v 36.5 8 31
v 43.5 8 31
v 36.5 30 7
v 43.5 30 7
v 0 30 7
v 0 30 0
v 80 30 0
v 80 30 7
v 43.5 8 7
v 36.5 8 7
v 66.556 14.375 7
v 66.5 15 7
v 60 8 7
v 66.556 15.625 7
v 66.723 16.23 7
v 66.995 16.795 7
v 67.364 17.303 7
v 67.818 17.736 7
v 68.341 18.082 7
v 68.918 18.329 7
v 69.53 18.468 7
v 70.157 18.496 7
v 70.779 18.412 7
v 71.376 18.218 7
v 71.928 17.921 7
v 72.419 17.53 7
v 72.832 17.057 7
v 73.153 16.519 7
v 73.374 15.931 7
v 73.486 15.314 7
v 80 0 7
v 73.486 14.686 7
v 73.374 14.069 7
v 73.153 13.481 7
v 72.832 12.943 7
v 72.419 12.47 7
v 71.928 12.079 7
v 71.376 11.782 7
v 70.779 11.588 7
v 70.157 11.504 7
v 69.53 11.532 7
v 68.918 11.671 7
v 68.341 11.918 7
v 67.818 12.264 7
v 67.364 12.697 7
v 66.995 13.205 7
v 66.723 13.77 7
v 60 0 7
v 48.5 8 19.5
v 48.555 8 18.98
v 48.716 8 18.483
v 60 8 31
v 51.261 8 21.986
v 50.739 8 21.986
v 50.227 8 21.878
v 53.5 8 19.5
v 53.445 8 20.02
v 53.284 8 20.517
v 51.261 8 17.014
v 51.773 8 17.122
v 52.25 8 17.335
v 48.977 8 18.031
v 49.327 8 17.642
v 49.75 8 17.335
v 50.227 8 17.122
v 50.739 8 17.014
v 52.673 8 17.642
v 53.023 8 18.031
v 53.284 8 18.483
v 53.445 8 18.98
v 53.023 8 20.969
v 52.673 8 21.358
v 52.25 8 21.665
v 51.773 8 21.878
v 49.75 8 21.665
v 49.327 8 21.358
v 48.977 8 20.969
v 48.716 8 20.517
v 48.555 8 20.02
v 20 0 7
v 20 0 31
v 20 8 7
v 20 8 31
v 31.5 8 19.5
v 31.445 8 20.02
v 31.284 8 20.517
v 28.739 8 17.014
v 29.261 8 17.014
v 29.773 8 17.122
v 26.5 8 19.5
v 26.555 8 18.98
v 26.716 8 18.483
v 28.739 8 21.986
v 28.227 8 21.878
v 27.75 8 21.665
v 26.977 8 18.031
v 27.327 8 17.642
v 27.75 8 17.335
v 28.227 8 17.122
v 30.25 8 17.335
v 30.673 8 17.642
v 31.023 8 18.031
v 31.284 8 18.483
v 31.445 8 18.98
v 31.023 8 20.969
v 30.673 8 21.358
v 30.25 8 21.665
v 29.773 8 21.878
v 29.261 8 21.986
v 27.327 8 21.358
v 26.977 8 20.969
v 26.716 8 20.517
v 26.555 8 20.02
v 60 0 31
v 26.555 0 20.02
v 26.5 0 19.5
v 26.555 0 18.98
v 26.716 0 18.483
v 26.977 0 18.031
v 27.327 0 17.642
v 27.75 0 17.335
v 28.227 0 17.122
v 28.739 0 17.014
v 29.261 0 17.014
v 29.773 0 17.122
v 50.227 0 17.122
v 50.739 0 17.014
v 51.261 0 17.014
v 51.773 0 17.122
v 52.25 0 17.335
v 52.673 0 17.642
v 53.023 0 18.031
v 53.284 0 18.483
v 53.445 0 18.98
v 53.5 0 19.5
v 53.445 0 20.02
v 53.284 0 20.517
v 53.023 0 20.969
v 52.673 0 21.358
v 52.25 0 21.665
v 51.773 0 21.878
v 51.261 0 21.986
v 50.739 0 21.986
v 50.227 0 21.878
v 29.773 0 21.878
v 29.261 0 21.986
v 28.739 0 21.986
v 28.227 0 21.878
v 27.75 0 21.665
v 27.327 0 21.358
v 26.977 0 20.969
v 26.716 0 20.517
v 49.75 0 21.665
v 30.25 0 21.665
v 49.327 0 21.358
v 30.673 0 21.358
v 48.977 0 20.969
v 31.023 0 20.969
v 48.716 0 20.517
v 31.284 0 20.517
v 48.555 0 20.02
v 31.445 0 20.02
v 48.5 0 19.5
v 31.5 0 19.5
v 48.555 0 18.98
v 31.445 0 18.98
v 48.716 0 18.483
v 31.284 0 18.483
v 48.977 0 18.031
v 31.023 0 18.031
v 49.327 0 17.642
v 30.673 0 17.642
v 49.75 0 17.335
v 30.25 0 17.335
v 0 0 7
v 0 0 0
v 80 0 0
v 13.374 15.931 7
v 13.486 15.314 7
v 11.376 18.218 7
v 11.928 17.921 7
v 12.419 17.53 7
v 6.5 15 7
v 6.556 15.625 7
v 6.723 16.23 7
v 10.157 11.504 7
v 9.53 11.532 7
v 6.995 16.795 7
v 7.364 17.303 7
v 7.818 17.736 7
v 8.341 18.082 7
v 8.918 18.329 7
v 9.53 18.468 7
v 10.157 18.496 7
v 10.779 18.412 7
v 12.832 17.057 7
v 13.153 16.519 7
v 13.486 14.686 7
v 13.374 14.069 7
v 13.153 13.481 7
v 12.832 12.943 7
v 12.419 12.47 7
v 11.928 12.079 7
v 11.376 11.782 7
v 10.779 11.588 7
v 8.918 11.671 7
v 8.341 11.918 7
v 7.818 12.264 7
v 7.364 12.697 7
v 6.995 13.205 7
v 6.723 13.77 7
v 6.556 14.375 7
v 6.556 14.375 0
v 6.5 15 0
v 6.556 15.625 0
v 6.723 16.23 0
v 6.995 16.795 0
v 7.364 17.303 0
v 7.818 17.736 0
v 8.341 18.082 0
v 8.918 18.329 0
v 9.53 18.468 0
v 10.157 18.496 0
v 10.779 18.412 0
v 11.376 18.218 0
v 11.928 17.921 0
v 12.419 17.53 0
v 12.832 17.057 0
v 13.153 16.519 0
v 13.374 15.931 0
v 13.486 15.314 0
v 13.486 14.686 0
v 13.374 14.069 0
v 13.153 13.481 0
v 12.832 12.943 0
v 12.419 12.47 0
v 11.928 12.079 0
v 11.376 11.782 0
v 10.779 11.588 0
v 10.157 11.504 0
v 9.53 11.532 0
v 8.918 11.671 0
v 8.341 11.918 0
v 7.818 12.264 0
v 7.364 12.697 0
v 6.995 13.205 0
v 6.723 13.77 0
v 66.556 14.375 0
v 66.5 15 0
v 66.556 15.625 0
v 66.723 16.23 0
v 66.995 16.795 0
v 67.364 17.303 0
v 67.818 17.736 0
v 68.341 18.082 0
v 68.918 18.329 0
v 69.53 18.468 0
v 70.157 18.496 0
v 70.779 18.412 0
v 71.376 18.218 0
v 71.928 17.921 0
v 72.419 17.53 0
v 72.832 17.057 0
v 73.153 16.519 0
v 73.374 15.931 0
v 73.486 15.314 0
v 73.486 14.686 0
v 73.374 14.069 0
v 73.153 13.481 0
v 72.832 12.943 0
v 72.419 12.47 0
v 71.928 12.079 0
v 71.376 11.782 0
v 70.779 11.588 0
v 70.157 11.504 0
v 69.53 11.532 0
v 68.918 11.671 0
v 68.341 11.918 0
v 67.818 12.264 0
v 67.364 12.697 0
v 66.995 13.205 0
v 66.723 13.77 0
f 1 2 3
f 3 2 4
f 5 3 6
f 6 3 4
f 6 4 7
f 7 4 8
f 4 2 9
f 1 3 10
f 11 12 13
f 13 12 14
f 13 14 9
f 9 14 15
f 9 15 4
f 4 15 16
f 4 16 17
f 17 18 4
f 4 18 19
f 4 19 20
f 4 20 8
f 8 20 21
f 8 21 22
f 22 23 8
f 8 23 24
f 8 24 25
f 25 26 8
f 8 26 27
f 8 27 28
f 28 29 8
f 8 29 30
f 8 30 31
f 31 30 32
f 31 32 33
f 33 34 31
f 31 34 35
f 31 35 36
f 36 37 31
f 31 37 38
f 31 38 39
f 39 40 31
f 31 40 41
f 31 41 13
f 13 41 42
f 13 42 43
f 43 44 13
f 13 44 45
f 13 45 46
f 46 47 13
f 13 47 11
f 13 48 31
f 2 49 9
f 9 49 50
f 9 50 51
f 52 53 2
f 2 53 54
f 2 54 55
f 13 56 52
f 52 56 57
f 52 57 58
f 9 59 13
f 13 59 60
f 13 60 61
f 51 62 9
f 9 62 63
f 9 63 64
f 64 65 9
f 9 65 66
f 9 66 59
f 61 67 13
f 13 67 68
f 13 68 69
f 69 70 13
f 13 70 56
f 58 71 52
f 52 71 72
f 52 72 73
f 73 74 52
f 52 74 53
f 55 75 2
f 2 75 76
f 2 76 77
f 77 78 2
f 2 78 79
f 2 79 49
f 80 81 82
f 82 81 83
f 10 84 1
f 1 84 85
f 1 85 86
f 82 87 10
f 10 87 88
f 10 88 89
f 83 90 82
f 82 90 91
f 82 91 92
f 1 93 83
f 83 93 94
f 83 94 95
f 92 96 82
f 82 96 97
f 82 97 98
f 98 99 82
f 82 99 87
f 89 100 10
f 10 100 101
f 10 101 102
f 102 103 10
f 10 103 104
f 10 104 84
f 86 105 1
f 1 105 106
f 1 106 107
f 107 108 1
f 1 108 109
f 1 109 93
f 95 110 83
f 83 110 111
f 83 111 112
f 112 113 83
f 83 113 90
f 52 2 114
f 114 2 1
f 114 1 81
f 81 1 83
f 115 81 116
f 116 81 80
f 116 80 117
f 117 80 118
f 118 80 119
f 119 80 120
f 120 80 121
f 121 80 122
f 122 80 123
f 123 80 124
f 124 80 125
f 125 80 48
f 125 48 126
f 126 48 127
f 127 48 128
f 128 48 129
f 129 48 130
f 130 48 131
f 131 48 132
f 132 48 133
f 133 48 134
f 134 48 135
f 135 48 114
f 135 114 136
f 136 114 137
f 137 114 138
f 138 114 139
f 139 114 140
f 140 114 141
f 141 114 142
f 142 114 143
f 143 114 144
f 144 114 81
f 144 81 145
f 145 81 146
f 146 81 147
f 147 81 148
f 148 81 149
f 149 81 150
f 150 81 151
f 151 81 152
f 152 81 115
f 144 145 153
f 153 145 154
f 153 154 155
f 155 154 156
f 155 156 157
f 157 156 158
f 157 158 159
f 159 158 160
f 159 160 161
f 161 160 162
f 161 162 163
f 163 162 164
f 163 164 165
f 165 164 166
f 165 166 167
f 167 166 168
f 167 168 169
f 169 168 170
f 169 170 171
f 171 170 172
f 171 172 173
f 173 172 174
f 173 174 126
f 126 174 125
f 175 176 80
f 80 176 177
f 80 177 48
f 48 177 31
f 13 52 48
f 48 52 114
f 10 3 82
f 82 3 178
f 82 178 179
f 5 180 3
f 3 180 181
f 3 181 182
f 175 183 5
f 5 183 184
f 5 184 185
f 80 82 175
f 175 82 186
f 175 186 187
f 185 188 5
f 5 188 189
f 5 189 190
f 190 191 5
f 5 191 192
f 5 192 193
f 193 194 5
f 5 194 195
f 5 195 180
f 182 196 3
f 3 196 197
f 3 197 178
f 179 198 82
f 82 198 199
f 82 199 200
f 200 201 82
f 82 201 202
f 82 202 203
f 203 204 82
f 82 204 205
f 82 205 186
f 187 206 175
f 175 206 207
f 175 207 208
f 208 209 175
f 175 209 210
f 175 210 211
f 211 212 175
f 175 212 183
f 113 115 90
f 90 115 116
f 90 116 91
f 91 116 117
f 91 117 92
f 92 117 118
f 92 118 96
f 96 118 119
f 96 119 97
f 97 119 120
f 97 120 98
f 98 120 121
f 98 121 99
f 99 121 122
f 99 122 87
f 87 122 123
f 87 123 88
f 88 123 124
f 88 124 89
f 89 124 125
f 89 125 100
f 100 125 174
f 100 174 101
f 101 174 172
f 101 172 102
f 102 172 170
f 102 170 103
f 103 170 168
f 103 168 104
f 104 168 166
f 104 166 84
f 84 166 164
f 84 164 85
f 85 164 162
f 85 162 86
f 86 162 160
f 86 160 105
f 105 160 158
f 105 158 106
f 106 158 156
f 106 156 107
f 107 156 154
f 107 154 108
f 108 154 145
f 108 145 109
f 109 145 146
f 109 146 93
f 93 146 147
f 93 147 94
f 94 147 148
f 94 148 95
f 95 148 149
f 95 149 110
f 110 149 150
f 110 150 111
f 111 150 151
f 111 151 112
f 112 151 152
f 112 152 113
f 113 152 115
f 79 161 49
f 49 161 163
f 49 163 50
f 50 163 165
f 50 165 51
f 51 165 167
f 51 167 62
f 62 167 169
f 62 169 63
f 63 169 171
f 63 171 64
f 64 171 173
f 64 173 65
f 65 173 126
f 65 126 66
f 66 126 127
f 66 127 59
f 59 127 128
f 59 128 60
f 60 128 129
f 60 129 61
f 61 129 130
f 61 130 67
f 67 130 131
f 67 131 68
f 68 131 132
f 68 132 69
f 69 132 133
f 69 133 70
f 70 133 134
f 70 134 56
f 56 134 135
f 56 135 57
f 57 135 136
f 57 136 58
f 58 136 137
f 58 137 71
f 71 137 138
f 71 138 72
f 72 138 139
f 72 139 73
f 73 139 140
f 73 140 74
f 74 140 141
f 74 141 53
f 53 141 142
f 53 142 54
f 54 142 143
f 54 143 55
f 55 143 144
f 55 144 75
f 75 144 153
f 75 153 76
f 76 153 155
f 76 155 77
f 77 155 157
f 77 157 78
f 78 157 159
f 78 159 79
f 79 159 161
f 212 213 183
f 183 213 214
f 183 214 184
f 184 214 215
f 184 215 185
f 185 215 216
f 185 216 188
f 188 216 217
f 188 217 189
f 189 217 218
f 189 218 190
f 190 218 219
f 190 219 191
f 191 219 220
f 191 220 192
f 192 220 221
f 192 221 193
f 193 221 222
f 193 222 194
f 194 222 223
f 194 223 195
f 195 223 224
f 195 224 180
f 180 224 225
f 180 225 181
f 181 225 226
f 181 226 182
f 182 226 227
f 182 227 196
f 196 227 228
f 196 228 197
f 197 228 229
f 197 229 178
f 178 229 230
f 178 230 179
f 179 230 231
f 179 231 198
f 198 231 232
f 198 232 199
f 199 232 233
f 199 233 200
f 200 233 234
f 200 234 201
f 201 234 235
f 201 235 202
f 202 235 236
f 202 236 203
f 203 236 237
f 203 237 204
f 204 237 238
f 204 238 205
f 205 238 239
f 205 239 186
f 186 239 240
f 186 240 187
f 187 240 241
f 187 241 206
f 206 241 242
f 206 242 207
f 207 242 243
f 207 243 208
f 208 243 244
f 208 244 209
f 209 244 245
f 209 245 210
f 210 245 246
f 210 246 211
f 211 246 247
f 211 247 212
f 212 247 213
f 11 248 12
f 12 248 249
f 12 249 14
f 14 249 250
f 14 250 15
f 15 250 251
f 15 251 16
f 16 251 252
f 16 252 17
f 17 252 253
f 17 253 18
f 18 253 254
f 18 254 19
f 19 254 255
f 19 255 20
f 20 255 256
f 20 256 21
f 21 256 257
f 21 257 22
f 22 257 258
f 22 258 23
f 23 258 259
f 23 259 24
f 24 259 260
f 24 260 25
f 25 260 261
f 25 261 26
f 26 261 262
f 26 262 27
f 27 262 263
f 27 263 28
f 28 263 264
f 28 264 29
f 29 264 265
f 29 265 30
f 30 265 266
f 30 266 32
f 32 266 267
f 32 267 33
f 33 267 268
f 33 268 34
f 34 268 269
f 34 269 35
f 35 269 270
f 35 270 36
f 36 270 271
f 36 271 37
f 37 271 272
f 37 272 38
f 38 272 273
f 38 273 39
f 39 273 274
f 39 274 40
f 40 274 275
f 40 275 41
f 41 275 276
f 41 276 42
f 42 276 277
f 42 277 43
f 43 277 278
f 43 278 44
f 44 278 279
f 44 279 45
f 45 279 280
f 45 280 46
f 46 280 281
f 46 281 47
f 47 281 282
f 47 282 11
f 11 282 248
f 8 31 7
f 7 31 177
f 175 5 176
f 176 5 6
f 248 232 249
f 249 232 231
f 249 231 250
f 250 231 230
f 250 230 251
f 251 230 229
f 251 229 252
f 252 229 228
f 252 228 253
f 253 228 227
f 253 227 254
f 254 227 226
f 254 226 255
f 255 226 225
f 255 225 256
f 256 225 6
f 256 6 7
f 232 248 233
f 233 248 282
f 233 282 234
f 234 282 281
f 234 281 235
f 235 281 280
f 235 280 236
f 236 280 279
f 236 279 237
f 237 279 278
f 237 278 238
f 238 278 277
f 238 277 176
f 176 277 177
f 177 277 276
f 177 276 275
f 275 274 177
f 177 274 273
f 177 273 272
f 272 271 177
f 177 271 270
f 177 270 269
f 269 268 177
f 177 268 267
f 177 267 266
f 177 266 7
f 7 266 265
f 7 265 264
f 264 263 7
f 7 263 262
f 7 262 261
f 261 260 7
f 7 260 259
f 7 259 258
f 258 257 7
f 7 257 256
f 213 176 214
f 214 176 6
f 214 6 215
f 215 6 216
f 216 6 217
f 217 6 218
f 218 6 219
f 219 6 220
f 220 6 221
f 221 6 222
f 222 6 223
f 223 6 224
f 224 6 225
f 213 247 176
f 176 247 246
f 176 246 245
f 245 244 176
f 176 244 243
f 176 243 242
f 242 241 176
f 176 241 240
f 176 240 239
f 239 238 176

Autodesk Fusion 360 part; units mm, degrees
sketch "Skizze1" plane through (0, 0, 0) normal (0, 0, 1) x (1, 0, 0)
  line L0 (0, 0) -> (80, 0)
  line L1 (80, 0) -> (80, 30)
  line L2 (80, 30) -> (0, 30)
  line L3 (0, 30) -> (0, 0)
  line L4 (0, 30) -> (10, 30)
  line L5 (10, 30) -> (10, 15)
  line L6 (10, 15) -> (0, 15)
  line L7 (0, 15) -> (0, 30)
  line L8 (80, 30) -> (70, 30)
  line L9 (70, 30) -> (70, 15)
  line L10 (70, 15) -> (80, 15)
  line L11 (80, 15) -> (80, 30)
  circle A0 centre (10, 15) radius 3.5
  circle A1 centre (70, 15) radius 3.5
  dimension "d1" = 80
  dimension "d2" = 30
  dimension "d3" = 10
  dimension "d4" = 15
  dimension "d5" = 10
  dimension "d6" = 15
  dimension "d7" = 7
  dimension "d8" = 7
extrude "Extrusion1" add sketch "Skizze1" along normal blind 7 contours L0 L1 L2 L3 L5 L6 L9 L10 A0 A1 | L2 L3 L4 L5 L6 L7 A0 | L1 L2 L8 L9 L10 L11 A1
sketch "Skizze2" plane through (0, 0, 0) normal (0, 1, 0) x (1, 0, 0)
sketch "Skizze3" plane through (0, 0, 7) normal (0, 0, 1) x (-1, 0, 0)
  circle A0 centre (-70, -15) radius 3.5
  circle A1 centre (-10, -15) radius 3.5
  line L0 (0, -30) -> (0, 0)
  line L1 (0, 0) -> (-80, 0)
  line L2 (-80, 0) -> (-80, -30)
  line L3 (-80, -30) -> (0, -30)
  line L4 (0, 0) -> (-80, 0)
  line L5 (-80, 0) -> (-80, -5)
  line L6 (-80, -5) -> (0, -5)
  line L7 (0, -5) -> (0, 0)
  dimension "d11" = 5
extrude "Extrusion2" add sketch "Skizze3" along normal blind 24 contours L0 L1 L2 L4 L5 L6 L7
sketch "Skizze4" plane through (0, 0, 0) normal (0, -1, 0) x (1, 0, 0)
  line L0 (0, 0) -> (80, 0)
  line L1 (80, 0) -> (80, 31)
  line L2 (80, 31) -> (0, 31)
  line L3 (0, 31) -> (0, 0)
  line L4 (40, 31) -> (40, 19)
  line L5 (40, 0) -> (40, 19.5)
  line L6 (40, 19.5) -> (51, 19.5)
  circle A0 centre (51, 19.5) radius 2.5
  line L7 (40, 19.5) -> (29, 19.5)
  circle A1 centre (29, 19.5) radius 2.5
  dimension "d37" = 19.5
  dimension "d38" = 11
  dimension "d39" = 5
  dimension "d40" = 11
  dimension "d41" = 5
extrude "Extrusion10" cut sketch "Skizze4" against normal blind 9 contours A1 | A0
extrude "Extrusion11" add 1 faces at (8.8333, 5, 19.1667) along direction (0, 1, 0) blind 3
sketch "Skizze8" plane through (80, 0, 0) normal (1, 0, 0) x (0, 1, 0)
  line L0 (0, 0) -> (30, 0)
  line L1 (30, 0) -> (30, 7)
  line L2 (30, 7) -> (8, 7)
  line L3 (8, 7) -> (8, 31)
  line L4 (8, 31) -> (0, 31)
  line L5 (0, 31) -> (0, 0)
  line L6 (0, 31) -> (8, 31)
  line L7 (8, 31) -> (8, 7)
  line L8 (8, 7) -> (0, 7)
  line L9 (0, 7) -> (0, 31)
extrude "Extrusion12" cut sketch "Skizze8" against normal blind 20 contours L3 L4 L5 L6 L7 L8 L9
sketch "Skizze9" plane through (0, 0, 0) normal (-1, 0, 0) x (0, -1, 0)
  line L0 (-30, 0) -> (0, 0)
  line L1 (0, 0) -> (0, 31)
  line L2 (0, 31) -> (-8, 31)
  line L3 (-8, 31) -> (-8, 7)
  line L4 (-8, 7) -> (-30, 7)
  line L5 (-30, 7) -> (-30, 0)
  line L6 (0, 31) -> (-8, 31)
  line L7 (-8, 31) -> (-8, 7)
  line L8 (-8, 7) -> (0, 7)
  line L9 (0, 7) -> (0, 31)
extrude "Extrusion13" cut sketch "Skizze9" against normal blind 20 contours L1 L2 L3 L6 L7 L8 L9
sketch "Skizze10" plane through (0, 0, 7) normal (0, 0, 1) x (-1, 0, 0)
  circle A0 centre (-10, -15) radius 3.5
  circle A1 centre (-70, -15) radius 3.5
  line L0 (-20, -8) -> (-60, -8)
  line L1 (-60, -8) -> (-60, 0)
  line L2 (-60, 0) -> (-80, 0)
  line L3 (-80, 0) -> (-80, -30)
  line L4 (-80, -30) -> (0, -30)
  line L5 (0, -30) -> (0, 0)
  line L6 (0, 0) -> (-20, 0)
  line L7 (-20, 0) -> (-20, -8)
  line L8 (-40, -30) -> (-36.5, -30)
  line L9 (-36.5, -30) -> (-43.5, -30)
  line L10 (-43.5, -30) -> (-43.5, -8)
  line L11 (-43.5, -8) -> (-36.5, -8)
  line L12 (-36.5, -8) -> (-36.5, -30)
  dimension "d52" = 3.5
  dimension "d53" = 7
extrude "Extrusion14" add sketch "Skizze10" along normal blind 24 contours L0 L4 L8 L9 L10 L11 L12
chamfer "Fase3" distance 22 distance2 24 1 edges at (40, 30, 31) measured on face at (41.1667, 2.6667, 31)
